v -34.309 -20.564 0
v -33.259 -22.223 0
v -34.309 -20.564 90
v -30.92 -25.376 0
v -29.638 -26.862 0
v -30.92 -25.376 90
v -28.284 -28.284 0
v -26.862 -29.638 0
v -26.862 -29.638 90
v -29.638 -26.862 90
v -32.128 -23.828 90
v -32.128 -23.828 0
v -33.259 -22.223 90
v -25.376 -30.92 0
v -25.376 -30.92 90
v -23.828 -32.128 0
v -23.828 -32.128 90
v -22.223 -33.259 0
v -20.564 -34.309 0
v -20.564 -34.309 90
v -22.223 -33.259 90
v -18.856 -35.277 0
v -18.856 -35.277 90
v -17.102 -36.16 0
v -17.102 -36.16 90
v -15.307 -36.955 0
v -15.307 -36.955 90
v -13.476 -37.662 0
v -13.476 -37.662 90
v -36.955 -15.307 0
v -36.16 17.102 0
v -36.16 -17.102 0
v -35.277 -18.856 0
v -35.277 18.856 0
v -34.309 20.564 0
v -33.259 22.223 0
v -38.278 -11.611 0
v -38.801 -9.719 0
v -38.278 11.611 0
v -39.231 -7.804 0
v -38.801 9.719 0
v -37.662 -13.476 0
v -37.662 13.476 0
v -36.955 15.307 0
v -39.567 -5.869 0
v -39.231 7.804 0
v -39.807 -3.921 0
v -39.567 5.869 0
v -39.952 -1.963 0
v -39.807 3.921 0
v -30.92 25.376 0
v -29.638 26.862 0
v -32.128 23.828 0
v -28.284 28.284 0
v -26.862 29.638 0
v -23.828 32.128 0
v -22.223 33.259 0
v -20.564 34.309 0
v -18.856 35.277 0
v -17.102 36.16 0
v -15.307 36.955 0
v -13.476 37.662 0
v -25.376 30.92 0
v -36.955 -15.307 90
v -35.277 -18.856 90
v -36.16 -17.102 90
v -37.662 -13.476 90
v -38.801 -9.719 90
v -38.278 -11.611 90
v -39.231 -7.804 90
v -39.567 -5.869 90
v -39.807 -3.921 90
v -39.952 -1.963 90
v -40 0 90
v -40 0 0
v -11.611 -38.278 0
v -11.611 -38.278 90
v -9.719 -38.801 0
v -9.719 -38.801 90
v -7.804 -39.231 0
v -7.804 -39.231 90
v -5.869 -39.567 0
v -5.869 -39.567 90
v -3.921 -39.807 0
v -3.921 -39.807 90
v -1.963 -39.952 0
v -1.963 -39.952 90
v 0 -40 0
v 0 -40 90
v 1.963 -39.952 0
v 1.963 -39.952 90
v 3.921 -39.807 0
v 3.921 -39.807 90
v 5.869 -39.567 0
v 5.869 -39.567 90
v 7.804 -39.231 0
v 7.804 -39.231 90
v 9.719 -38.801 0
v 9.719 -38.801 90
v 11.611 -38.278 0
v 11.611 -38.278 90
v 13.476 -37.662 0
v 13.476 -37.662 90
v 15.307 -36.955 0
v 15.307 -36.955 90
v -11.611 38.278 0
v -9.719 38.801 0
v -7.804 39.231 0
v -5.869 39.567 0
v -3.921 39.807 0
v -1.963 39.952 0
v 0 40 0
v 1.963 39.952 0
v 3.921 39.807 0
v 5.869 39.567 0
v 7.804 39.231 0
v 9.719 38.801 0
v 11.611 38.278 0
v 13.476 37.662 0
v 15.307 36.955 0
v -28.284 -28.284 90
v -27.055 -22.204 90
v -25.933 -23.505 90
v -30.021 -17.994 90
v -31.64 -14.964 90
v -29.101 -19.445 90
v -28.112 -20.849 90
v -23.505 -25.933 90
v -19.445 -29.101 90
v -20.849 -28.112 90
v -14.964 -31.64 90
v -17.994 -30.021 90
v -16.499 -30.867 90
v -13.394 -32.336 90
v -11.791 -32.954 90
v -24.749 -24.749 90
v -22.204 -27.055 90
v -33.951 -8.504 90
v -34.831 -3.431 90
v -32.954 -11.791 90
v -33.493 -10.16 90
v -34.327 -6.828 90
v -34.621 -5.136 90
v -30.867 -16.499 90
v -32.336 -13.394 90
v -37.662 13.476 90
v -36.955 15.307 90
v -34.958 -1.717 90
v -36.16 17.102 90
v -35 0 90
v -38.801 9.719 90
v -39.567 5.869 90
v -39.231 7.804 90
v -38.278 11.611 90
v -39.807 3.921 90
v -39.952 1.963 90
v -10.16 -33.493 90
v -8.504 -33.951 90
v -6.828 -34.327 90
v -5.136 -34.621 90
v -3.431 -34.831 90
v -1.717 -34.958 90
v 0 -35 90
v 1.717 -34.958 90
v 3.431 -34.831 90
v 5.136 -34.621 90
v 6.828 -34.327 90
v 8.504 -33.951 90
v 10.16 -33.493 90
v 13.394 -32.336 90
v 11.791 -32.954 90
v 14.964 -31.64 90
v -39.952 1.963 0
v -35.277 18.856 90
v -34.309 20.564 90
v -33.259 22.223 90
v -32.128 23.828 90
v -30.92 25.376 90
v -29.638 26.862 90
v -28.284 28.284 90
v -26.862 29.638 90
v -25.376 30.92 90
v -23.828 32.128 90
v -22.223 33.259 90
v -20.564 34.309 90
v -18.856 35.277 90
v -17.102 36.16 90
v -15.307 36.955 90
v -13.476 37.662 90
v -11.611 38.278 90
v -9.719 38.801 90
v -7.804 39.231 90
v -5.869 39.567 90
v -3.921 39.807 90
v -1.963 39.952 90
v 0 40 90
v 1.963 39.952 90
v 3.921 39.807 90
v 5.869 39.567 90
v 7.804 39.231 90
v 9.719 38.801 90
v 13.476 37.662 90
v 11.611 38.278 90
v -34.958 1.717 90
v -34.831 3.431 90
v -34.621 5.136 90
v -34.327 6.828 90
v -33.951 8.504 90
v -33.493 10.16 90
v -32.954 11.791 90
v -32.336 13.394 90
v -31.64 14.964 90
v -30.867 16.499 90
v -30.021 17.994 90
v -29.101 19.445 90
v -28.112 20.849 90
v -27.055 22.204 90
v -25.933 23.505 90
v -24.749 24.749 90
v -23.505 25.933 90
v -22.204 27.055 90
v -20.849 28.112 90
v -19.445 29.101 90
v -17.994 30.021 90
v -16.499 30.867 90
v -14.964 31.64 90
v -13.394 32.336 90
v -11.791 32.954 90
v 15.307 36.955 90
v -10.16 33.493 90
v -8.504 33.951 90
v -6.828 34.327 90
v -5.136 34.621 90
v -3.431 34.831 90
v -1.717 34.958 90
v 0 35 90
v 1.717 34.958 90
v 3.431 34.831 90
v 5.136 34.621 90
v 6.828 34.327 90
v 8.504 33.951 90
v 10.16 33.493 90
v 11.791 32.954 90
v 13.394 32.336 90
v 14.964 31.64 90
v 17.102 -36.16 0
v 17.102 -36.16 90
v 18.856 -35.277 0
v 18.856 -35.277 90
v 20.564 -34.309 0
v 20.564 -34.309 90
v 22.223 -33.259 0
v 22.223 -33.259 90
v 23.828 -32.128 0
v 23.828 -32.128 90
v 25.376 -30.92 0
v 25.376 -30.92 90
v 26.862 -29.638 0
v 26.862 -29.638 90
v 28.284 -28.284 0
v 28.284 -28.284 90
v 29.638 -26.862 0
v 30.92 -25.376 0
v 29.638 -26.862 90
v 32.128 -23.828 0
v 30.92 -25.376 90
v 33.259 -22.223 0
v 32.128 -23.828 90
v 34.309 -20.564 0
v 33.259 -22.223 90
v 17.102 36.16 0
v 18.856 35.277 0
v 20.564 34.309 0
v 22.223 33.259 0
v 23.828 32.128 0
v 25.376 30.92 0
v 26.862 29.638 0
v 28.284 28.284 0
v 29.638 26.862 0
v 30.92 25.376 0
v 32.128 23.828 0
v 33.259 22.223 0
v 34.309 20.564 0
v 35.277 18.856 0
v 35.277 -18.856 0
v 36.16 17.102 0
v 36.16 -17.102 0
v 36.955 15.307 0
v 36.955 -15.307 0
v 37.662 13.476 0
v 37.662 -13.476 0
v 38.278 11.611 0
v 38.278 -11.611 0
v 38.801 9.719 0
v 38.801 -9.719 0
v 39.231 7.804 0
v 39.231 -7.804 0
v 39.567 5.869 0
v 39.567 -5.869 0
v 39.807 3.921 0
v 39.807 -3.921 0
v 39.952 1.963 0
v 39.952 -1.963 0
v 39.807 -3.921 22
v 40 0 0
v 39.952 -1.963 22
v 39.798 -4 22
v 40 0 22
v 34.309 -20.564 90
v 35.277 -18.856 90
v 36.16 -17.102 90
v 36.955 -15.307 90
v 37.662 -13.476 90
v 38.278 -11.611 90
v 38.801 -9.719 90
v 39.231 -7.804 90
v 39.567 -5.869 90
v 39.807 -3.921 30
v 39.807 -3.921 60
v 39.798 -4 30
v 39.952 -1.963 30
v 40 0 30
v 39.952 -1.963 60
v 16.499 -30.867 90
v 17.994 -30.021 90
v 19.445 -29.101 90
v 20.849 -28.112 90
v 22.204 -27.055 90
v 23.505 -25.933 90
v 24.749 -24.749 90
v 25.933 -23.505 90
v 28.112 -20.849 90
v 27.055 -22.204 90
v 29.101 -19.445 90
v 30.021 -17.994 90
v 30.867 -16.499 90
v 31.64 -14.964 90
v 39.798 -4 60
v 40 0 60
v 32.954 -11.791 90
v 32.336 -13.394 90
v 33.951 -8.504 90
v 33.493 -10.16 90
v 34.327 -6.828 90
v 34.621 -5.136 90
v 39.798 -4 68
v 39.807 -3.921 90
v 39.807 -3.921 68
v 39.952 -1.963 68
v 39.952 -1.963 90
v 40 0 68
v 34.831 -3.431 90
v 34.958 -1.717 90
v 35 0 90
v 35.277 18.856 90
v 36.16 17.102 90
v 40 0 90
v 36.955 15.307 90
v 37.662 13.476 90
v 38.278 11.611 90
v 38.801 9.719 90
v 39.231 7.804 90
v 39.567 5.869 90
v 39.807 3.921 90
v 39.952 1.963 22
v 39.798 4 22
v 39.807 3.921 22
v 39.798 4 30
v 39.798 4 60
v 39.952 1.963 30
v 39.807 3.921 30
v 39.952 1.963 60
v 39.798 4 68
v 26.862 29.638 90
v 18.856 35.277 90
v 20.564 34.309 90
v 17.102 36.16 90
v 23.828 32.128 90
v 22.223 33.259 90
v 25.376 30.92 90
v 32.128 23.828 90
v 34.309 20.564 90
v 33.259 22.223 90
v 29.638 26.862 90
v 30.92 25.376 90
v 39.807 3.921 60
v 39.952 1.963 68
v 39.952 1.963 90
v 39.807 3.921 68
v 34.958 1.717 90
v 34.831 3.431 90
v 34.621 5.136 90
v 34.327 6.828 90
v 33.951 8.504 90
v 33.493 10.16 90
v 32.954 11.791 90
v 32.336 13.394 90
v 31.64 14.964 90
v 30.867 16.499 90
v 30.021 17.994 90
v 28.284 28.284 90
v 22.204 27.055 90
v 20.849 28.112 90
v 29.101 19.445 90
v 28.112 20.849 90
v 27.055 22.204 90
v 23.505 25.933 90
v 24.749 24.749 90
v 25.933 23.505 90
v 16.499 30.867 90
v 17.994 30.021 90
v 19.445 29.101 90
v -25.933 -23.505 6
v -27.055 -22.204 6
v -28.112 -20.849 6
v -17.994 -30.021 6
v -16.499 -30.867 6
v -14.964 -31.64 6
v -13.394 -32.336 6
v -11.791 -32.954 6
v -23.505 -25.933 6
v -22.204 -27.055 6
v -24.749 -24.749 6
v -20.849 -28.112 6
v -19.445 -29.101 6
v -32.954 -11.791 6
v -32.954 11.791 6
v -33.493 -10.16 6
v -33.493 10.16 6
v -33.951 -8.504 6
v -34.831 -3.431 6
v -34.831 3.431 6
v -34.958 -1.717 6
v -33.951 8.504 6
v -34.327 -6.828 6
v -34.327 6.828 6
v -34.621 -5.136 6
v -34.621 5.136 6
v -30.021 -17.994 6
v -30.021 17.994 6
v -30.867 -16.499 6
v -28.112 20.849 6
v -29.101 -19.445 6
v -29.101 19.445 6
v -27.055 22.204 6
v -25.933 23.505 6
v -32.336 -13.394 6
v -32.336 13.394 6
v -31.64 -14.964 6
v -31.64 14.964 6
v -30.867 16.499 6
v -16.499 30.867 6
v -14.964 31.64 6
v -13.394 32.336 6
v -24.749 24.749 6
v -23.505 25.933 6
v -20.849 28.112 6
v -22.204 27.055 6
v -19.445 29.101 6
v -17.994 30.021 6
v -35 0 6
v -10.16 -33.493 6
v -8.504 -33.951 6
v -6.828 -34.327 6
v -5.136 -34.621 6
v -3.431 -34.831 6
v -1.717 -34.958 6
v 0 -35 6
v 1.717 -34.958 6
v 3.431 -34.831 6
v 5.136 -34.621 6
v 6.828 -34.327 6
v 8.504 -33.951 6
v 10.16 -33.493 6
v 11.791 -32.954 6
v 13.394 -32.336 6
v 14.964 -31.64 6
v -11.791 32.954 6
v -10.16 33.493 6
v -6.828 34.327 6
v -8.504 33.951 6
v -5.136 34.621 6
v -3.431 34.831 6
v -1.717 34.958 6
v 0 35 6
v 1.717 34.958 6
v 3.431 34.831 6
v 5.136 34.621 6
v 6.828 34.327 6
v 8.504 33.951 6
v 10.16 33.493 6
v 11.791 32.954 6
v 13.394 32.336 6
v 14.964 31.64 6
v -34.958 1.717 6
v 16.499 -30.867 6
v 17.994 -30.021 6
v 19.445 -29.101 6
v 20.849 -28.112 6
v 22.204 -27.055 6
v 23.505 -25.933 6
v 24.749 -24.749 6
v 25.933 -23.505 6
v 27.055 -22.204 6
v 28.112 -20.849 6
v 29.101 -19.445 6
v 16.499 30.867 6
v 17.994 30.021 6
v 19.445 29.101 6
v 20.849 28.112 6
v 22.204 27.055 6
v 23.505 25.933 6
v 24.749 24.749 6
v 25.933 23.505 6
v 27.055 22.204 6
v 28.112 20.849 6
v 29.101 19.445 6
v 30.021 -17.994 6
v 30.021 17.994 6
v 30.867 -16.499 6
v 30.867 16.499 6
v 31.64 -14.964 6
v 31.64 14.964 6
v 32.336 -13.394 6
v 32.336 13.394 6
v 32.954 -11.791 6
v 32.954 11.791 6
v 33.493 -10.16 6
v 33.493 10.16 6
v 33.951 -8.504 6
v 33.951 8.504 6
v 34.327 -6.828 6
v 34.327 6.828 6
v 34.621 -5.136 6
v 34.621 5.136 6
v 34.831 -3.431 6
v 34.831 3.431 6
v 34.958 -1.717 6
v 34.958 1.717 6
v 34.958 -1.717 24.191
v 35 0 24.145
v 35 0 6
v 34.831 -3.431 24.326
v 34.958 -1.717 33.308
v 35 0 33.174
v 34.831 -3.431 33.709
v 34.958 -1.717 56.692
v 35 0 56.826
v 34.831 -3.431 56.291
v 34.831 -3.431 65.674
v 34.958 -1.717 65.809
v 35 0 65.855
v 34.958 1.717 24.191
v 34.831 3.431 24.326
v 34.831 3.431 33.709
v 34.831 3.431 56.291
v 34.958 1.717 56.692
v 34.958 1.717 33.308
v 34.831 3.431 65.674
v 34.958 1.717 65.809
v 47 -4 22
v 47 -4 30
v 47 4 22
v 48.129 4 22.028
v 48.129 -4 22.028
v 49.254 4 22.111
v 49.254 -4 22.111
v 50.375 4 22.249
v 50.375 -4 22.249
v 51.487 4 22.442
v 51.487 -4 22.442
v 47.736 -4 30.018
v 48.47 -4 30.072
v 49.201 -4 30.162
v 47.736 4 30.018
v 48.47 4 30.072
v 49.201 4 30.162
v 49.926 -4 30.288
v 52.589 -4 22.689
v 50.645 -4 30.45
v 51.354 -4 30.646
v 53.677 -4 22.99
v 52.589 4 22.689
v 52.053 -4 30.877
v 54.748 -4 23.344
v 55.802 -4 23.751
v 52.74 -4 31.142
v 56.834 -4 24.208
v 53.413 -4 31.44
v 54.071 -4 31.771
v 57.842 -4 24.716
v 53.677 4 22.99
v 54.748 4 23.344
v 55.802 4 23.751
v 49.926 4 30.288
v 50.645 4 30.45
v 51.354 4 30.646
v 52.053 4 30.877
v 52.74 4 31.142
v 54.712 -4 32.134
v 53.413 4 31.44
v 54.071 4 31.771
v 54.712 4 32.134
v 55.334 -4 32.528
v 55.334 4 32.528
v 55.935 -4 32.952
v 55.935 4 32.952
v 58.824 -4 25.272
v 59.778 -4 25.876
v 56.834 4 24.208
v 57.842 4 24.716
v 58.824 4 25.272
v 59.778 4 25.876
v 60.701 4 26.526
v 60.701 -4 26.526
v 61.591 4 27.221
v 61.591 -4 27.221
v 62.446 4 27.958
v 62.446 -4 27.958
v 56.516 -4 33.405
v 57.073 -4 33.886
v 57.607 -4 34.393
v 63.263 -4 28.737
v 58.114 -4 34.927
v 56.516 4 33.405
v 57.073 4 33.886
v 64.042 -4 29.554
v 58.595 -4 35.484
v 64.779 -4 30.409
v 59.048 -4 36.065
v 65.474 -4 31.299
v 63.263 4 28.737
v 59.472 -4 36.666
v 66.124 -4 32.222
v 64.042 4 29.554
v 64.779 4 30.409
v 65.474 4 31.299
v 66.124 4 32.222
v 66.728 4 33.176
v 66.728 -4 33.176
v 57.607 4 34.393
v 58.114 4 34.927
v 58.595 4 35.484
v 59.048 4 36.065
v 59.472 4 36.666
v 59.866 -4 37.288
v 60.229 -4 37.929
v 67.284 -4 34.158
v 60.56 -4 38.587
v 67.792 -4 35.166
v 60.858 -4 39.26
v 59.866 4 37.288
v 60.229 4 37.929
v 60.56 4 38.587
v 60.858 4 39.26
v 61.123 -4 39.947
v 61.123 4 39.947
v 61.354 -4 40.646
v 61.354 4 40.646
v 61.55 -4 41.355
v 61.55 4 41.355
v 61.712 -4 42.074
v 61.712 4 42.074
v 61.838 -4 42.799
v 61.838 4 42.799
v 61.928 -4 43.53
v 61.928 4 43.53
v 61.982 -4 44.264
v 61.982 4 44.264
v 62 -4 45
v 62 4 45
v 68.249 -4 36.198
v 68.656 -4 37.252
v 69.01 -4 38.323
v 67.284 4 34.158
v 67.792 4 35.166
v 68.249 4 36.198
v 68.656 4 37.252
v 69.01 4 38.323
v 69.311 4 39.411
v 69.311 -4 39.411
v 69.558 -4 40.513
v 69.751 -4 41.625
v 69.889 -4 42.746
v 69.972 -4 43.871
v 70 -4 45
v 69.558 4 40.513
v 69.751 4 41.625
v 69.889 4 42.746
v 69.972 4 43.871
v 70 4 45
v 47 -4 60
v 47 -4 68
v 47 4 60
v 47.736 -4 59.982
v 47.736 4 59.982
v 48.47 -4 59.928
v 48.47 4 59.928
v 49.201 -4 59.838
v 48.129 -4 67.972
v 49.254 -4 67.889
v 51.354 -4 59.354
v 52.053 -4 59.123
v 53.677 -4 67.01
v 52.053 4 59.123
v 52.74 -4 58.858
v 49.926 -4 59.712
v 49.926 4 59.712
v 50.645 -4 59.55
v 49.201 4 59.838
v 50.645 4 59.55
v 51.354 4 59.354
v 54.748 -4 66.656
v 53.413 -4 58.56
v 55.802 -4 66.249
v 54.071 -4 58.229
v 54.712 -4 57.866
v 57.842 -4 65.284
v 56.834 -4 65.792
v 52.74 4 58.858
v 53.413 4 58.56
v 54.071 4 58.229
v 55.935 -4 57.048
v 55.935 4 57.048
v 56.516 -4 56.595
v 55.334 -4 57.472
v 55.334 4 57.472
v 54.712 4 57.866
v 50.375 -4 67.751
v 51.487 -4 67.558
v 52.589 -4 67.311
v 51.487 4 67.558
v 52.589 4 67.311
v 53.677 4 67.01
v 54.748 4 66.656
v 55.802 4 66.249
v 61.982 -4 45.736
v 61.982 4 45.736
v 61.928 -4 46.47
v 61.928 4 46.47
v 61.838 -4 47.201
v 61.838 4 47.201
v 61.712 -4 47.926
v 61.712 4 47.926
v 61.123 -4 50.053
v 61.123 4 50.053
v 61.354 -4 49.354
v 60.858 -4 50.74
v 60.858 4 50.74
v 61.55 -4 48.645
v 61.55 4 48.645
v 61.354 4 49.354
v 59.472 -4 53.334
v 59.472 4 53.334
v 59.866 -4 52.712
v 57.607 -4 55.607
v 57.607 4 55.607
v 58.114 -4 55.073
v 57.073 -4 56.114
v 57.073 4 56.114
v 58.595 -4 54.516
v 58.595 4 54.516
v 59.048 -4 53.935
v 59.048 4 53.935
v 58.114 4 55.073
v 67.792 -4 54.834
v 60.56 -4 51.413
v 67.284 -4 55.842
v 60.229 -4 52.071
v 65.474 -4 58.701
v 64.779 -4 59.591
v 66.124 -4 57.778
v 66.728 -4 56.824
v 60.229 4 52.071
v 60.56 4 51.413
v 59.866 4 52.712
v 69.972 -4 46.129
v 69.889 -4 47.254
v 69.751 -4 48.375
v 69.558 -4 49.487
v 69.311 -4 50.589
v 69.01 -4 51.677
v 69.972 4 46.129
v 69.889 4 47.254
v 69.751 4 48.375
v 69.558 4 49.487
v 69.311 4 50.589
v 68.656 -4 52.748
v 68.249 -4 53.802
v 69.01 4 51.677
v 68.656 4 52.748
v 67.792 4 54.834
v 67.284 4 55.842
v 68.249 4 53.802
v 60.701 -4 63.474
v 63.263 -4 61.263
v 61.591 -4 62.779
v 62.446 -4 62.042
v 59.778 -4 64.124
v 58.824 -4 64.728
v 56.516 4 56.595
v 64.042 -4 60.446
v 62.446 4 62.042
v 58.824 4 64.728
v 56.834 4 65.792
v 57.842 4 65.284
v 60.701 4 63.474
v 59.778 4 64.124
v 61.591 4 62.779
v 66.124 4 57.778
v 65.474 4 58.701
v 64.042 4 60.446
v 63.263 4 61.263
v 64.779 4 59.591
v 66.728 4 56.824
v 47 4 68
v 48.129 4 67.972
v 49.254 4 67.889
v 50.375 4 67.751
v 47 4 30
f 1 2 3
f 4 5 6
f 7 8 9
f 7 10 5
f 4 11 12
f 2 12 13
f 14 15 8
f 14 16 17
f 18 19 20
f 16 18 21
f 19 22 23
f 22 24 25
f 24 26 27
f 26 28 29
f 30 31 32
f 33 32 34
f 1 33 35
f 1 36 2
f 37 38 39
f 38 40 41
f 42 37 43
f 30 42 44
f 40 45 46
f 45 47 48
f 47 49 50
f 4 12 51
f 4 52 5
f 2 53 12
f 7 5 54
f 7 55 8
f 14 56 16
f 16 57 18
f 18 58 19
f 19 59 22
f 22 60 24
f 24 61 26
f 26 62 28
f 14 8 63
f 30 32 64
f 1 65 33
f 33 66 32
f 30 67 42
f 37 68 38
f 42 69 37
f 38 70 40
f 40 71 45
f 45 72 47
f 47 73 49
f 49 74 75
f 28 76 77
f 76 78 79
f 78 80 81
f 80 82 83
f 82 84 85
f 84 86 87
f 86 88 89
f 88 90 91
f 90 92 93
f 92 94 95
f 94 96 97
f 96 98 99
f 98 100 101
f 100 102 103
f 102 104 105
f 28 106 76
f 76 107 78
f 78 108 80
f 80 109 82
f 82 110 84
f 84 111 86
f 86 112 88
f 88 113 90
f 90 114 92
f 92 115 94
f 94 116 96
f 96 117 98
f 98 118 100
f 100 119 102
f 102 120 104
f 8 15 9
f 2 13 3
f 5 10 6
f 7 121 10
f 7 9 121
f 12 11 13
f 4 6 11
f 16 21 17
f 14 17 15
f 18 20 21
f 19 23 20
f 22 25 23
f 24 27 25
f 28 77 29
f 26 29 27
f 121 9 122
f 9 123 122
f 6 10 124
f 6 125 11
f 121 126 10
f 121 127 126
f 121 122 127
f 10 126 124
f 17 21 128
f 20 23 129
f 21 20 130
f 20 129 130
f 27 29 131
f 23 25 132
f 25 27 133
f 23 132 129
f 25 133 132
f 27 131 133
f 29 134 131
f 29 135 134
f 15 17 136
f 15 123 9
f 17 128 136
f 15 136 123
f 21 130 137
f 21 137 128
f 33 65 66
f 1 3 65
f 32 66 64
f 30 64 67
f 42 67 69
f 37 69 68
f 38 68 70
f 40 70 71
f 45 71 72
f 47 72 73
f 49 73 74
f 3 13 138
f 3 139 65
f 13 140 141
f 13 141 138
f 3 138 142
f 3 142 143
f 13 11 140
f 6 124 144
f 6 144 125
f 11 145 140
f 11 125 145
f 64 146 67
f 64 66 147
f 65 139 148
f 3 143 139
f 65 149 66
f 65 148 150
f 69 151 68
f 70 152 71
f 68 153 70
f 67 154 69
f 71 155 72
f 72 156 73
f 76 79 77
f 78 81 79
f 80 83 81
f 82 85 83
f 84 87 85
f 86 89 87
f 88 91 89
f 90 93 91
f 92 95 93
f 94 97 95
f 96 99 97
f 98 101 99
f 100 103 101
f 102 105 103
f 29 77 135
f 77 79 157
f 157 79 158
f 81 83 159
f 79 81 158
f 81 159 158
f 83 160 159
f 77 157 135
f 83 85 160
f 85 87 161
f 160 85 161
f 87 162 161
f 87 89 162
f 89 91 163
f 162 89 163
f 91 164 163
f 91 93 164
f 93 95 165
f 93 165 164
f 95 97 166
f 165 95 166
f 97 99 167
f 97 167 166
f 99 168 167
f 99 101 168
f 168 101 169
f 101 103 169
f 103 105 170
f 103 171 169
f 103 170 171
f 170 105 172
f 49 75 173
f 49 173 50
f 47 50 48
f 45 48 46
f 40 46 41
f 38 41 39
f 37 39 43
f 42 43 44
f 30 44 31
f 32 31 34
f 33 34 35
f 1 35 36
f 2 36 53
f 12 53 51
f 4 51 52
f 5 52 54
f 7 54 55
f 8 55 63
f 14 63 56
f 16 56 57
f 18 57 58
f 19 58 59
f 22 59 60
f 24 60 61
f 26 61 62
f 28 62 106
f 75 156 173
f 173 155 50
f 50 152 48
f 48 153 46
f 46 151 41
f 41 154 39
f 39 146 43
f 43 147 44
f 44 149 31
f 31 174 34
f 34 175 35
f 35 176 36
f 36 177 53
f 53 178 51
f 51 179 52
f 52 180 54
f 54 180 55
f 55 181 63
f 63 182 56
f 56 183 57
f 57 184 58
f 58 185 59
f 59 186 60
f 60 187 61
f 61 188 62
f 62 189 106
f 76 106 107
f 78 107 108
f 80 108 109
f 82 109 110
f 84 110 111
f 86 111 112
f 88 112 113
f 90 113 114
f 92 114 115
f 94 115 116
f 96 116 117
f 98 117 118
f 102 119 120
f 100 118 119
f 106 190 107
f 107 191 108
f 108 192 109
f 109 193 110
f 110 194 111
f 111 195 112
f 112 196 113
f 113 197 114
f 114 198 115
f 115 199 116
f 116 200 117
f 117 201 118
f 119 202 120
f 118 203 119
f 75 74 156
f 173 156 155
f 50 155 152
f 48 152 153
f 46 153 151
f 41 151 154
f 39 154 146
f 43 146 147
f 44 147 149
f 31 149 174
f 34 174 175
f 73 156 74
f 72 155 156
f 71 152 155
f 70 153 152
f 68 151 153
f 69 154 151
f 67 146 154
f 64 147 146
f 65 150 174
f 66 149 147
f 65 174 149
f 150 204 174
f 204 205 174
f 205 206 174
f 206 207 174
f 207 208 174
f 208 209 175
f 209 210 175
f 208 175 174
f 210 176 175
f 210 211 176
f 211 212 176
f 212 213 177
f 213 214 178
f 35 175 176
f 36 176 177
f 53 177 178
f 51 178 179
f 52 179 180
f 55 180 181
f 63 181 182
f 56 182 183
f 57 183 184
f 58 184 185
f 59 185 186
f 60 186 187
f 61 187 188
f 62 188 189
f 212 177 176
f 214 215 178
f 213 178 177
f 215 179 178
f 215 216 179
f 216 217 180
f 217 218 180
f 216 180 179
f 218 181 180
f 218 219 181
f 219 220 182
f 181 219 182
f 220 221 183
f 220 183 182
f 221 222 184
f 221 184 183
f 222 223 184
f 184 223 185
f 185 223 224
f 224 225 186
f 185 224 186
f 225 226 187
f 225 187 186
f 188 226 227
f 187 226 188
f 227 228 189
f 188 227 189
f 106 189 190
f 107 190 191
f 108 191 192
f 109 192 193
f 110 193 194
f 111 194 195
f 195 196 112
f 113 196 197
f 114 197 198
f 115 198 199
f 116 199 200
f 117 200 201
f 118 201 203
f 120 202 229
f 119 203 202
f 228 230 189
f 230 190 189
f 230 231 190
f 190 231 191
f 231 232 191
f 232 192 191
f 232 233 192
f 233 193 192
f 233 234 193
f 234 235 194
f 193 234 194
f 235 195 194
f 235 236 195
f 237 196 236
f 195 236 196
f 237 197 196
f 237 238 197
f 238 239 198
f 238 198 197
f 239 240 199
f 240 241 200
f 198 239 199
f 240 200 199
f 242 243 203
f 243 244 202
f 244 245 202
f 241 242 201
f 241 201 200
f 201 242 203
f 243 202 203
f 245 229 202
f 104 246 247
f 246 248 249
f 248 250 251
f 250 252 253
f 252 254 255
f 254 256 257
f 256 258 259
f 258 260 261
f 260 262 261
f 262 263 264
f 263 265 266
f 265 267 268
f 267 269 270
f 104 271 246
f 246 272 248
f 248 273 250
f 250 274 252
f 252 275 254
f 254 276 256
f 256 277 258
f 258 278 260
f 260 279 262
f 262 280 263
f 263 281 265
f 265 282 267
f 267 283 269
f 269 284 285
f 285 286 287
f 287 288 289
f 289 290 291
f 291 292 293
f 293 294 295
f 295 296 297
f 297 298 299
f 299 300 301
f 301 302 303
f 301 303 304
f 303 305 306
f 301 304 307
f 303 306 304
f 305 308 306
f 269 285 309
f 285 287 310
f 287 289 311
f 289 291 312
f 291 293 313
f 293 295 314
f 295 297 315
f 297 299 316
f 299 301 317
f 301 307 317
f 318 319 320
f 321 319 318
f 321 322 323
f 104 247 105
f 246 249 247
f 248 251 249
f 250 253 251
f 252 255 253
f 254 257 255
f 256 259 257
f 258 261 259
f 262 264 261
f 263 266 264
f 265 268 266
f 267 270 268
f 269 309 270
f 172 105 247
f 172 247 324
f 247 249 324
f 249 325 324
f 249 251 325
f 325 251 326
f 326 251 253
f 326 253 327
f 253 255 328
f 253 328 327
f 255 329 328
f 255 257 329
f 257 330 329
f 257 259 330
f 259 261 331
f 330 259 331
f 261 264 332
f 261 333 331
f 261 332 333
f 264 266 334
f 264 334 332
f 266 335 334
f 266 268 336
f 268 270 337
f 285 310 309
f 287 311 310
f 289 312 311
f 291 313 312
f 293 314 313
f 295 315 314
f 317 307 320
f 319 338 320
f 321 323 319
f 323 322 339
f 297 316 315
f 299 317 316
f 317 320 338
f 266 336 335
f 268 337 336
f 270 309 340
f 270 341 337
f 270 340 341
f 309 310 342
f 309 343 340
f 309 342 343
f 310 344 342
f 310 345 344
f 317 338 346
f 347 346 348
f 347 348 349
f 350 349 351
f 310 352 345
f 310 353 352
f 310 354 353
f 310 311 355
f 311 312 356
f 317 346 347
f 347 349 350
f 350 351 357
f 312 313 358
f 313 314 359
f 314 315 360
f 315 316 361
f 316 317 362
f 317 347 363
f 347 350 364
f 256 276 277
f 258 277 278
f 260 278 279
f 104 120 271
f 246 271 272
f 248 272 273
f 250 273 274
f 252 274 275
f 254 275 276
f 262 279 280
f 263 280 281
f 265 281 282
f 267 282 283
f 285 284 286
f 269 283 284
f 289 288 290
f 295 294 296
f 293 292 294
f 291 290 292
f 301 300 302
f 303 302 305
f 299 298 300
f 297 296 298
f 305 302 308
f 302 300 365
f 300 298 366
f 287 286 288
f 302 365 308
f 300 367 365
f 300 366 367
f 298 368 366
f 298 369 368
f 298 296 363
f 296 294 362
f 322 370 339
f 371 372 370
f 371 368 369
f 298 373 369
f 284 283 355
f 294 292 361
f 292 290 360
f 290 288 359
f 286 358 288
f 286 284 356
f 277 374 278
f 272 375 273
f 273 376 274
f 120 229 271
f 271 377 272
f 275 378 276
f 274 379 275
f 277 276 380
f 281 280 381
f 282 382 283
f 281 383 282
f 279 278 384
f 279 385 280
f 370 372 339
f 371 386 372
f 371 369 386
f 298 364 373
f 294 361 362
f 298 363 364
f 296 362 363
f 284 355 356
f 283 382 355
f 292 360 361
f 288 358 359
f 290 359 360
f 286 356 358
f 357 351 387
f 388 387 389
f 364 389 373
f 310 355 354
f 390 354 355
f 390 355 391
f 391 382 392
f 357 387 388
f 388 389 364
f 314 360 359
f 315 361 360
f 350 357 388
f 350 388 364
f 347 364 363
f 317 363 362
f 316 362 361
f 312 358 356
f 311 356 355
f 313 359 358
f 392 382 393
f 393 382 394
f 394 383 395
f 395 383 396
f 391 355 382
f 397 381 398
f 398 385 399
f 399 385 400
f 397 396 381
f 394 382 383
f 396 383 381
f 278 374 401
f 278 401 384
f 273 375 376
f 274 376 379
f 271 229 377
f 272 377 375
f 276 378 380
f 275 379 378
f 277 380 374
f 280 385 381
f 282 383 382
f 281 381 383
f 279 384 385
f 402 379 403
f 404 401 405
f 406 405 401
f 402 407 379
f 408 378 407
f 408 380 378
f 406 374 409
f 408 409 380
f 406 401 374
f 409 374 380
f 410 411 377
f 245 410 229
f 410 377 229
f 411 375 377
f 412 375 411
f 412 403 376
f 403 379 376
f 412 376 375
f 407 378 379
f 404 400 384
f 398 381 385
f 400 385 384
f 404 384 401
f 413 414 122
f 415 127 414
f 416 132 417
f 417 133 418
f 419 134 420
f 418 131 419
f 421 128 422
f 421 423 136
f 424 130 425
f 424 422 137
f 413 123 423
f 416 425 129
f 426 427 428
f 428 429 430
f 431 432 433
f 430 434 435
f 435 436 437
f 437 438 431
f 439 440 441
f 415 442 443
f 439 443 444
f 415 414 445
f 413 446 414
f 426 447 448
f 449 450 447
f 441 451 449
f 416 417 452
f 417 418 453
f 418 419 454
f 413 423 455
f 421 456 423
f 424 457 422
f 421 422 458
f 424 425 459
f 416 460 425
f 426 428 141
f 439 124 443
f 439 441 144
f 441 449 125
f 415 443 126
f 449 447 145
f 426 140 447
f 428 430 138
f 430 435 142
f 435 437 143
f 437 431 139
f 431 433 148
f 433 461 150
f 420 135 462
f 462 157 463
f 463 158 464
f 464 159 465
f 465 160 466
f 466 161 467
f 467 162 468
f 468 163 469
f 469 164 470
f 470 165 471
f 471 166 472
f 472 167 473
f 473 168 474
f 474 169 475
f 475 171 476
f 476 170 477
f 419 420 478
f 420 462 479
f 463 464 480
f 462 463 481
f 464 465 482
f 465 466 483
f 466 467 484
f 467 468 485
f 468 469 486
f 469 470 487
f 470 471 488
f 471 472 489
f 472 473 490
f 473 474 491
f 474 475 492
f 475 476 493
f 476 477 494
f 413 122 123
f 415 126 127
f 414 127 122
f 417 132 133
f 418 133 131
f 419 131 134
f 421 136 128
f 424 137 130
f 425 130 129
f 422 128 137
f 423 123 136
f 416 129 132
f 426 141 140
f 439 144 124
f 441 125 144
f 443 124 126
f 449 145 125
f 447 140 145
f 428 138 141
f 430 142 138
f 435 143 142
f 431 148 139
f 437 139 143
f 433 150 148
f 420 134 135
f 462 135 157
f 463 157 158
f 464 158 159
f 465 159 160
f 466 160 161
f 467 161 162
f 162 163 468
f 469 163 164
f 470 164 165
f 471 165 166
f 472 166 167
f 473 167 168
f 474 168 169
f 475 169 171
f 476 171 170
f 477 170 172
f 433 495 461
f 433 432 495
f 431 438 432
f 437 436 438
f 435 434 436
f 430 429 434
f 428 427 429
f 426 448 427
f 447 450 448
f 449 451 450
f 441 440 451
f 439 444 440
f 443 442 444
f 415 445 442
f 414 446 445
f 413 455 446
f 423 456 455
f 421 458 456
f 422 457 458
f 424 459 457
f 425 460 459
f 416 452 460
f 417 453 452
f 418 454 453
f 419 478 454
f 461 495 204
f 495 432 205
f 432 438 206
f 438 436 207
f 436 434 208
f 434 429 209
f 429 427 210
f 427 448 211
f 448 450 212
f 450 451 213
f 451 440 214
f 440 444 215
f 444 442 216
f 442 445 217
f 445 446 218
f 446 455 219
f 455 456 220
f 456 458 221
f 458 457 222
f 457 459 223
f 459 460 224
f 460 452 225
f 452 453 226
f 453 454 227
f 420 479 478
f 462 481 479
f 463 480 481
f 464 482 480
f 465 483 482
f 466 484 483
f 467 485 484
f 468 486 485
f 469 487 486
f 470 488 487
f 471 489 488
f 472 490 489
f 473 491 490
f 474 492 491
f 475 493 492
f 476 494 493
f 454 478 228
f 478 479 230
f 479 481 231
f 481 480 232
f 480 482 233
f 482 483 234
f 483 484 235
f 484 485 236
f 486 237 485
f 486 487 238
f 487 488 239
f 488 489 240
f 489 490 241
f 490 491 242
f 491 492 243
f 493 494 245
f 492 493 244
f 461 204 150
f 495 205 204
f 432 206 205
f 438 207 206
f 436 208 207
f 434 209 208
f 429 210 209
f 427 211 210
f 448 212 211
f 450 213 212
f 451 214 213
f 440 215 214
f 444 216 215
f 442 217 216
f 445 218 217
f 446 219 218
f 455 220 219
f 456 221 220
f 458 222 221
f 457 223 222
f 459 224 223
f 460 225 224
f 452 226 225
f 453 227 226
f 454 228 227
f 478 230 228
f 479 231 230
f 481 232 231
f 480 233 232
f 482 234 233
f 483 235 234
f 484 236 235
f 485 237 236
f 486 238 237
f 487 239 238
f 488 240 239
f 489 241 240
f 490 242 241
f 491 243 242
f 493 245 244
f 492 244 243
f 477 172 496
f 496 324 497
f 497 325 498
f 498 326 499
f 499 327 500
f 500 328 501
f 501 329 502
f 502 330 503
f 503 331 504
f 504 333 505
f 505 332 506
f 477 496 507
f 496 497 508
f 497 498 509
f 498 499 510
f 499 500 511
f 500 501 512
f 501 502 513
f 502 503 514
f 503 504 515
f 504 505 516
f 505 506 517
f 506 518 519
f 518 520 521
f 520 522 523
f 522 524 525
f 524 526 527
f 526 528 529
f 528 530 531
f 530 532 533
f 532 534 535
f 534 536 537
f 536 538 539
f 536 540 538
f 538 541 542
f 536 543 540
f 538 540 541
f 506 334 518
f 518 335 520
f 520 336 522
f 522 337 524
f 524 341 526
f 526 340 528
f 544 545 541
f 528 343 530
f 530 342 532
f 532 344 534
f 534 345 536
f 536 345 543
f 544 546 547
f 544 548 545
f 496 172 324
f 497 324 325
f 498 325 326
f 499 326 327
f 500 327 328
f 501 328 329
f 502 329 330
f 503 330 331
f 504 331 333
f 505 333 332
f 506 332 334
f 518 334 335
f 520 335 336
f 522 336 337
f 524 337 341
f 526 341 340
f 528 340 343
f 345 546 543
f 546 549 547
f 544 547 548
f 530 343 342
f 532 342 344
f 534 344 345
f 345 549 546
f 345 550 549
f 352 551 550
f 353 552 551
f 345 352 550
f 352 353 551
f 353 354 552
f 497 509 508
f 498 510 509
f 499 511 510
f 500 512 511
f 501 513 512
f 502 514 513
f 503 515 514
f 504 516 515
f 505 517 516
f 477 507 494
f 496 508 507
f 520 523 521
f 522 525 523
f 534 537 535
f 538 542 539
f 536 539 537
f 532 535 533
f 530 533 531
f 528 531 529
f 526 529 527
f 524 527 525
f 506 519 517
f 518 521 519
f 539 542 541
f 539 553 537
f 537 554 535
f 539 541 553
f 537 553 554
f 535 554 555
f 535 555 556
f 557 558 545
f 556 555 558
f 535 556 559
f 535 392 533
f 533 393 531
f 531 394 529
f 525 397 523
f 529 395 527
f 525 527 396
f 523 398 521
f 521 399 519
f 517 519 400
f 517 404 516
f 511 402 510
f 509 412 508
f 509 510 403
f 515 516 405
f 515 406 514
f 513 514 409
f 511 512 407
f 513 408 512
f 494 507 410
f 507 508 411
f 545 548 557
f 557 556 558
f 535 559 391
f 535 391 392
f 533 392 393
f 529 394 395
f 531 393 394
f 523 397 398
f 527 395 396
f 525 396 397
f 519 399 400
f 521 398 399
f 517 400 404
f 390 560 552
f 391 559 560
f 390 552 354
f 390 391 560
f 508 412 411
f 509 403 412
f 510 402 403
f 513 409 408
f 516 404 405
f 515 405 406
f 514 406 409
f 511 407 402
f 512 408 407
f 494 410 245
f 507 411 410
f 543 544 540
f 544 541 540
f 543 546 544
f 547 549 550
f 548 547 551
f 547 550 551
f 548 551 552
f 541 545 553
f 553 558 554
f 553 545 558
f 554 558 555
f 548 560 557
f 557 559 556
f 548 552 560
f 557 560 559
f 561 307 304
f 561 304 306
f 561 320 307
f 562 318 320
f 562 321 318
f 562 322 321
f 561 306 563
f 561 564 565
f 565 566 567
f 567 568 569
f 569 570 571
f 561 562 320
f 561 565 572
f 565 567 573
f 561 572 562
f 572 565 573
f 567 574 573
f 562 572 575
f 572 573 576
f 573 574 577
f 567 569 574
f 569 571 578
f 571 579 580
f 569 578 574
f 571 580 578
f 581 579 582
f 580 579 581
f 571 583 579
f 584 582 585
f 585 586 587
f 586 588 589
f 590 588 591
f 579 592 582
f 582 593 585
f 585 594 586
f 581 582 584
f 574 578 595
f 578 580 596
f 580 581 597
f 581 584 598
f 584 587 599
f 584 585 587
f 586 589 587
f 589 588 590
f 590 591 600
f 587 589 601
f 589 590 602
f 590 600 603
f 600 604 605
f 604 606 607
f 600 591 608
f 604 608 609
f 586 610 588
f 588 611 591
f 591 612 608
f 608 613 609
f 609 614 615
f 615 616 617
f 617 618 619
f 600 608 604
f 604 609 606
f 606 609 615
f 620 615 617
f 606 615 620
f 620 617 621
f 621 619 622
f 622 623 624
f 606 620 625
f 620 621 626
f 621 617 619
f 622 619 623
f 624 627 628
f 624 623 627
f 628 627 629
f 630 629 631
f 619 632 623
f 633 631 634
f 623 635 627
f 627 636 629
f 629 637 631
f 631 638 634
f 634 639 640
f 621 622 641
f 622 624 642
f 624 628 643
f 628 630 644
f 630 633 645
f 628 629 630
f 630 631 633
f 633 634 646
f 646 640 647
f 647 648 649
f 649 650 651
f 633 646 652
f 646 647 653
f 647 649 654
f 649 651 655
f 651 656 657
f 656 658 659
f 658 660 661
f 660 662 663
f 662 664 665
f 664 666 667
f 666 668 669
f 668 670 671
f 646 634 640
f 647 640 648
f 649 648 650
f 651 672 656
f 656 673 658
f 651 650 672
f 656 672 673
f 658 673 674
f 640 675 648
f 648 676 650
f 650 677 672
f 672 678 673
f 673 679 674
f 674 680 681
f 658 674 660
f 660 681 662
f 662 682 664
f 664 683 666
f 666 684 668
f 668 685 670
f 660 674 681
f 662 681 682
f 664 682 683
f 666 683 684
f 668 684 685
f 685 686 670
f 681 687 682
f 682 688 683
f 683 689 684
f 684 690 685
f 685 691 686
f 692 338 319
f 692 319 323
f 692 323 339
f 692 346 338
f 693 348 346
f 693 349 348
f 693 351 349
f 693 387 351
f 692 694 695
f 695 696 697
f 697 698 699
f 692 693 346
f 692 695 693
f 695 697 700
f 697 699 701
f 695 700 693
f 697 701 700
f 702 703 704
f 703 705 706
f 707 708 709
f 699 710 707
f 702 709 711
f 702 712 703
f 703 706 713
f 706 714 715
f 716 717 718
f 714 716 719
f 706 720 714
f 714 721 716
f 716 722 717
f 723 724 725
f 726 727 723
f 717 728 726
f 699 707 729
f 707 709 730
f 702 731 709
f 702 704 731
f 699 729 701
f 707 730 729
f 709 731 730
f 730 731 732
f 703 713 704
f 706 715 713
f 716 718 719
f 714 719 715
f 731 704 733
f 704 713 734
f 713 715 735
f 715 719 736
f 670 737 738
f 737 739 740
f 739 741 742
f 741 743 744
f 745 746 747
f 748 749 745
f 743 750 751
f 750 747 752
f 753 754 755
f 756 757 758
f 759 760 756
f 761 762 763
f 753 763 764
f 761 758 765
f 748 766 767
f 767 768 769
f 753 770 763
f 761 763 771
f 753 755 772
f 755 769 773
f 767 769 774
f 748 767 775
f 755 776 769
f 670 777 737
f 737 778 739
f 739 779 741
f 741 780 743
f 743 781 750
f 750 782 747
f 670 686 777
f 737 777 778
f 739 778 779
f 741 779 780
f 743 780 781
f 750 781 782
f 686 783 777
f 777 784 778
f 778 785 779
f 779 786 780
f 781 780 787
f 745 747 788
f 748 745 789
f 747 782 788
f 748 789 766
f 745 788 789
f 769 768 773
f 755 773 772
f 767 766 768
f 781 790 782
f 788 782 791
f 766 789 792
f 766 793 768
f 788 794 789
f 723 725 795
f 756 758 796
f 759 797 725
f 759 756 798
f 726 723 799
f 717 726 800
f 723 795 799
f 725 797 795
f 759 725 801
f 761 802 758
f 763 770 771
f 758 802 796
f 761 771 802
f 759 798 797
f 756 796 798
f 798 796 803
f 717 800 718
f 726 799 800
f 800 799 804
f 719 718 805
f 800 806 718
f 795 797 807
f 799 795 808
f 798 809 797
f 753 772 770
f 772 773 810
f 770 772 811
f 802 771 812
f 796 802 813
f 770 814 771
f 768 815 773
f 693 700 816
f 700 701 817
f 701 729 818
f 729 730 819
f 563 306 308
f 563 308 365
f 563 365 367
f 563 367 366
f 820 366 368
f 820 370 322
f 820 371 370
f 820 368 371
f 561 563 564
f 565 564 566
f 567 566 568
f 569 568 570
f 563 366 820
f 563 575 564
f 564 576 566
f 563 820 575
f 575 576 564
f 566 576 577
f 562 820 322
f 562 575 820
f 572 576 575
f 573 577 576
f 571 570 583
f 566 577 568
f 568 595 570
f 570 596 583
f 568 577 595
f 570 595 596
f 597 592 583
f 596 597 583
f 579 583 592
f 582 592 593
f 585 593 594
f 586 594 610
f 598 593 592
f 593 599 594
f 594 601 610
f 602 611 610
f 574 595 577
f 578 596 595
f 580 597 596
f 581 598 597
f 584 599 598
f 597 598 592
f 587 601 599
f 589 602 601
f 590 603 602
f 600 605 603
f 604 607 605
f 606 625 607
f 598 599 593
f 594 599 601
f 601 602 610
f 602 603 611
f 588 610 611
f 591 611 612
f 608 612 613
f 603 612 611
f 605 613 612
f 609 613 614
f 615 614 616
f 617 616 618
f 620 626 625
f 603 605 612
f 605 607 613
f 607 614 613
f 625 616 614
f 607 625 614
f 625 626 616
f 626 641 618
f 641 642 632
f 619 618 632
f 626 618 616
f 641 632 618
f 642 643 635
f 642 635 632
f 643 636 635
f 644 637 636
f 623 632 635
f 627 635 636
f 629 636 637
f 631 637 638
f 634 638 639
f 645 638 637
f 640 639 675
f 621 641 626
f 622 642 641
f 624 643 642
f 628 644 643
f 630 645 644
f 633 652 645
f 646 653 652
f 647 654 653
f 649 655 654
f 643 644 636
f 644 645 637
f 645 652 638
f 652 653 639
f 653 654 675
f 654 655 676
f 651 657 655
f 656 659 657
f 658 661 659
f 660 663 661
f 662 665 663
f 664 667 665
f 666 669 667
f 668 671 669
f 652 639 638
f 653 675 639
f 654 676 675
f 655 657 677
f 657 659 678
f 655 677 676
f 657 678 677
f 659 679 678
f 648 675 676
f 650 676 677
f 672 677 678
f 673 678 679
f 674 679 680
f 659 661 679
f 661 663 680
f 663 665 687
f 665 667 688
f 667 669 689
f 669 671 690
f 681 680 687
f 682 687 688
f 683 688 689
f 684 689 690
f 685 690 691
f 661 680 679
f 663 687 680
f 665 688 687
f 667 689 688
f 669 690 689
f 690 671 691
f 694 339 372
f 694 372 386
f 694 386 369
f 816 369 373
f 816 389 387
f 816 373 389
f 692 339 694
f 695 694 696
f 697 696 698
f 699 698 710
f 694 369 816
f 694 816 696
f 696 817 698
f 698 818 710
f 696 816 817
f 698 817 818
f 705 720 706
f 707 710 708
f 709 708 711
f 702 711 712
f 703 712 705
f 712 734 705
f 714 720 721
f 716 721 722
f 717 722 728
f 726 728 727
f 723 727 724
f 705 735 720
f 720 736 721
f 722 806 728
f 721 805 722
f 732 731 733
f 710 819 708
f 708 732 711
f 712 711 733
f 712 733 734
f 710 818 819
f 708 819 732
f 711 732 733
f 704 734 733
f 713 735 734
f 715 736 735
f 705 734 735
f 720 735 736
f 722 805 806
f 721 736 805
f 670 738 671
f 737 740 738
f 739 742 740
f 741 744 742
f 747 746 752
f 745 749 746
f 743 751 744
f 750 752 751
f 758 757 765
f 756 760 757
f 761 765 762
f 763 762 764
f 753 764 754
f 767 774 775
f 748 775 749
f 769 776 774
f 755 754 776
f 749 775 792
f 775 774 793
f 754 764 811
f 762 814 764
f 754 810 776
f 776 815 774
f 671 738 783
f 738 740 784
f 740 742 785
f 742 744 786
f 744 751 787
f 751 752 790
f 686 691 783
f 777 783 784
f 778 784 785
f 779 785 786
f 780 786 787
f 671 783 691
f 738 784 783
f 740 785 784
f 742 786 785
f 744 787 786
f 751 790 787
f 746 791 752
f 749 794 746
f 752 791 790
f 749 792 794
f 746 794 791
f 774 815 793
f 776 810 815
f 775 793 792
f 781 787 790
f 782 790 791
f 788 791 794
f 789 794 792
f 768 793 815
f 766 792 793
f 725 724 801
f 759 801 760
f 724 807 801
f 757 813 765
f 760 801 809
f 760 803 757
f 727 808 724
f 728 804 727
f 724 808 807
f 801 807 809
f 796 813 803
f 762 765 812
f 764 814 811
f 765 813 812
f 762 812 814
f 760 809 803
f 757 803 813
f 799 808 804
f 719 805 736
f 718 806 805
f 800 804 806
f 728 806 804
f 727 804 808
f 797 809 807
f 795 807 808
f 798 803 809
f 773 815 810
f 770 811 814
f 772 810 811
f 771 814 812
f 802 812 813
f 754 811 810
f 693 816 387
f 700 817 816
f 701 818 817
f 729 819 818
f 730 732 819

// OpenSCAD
// ===== Mug with D-shaped handle on +X side =====
$fn = 128;

// --- Parameters ---
outer_d   = 80;   // 外径
inner_d   = 70;   // 内径 (肉厚 5mm)
height    = 90;   // 全高
bottom_th = 6;    // 底面厚み

hole_h    = 30;   // 取手内側の高さ
hole_w    = 25;   // 取手内側の幅 (X方向)
bar       = 8;    // 取手の太さ(断面)
overlap   = 3;    // 本体へのめり込み量

or  = outer_d / 2;
ir  = inner_d / 2;

// 取手の中心高さ(マグ中央)
handle_z = height / 2;

// --- 本体 ---
module body() {
    difference() {
        cylinder(h = height, r = or);
        translate([0, 0, bottom_th])
            cylinder(h = height - bottom_th + 1, r = ir);
    }
}

// --- D字取手 ---
// 外形 D 形状から内側 D 形状を引く。XZ平面上の2D形状を押し出して回転配置。
module d_profile(w, h) {
    // 直線部を x=0 に置き、+x 側へ張り出す D 形状
    hull() {
        translate([0, -h/2 + w/1e9]) square([0.001, h], center = false);
        // 上下の端点を結ぶ直線部
        translate([0,  h/2 - 0.001]) square([0.001, 0.001]);
    }
}

module handle_2d() {
    difference() {
        // 外形: 高さ hole_h+2*bar, 張り出し hole_w+bar
        hull() {
            translate([0, -(hole_h/2 + bar)]) square([0.01, hole_h + 2*bar]);
            translate([hole_w + bar - (hole_h/2 + bar), 0])
                circle(r = hole_h/2 + bar);
        }
        // 内側の穴: 高さ hole_h, 張り出し hole_w
        hull() {
            translate([-1, -hole_h/2]) square([1.01, hole_h]);
            translate([hole_w - hole_h/2, 0]) circle(r = hole_h/2);
        }
    }
}

module handle() {
    // 2D(X:張り出し, Y:高さ)を XZ 平面へ立てる
    translate([or - overlap, 0, handle_z])
        rotate([90, 0, 0])
            linear_extrude(height = bar, center = true)
                handle_2d();
}

// --- 合成 ---
union() {
    body();
    intersection() {
        handle();
        // 本体内部へは入り込ませない(内壁を貫通させない)
        difference() {
            translate([0, 0, -1]) cylinder(h = height + 2, r = or + hole_w + bar + 10);
            translate([0, 0, bottom_th]) cylinder(h = height, r = ir);
        }
    }
}
